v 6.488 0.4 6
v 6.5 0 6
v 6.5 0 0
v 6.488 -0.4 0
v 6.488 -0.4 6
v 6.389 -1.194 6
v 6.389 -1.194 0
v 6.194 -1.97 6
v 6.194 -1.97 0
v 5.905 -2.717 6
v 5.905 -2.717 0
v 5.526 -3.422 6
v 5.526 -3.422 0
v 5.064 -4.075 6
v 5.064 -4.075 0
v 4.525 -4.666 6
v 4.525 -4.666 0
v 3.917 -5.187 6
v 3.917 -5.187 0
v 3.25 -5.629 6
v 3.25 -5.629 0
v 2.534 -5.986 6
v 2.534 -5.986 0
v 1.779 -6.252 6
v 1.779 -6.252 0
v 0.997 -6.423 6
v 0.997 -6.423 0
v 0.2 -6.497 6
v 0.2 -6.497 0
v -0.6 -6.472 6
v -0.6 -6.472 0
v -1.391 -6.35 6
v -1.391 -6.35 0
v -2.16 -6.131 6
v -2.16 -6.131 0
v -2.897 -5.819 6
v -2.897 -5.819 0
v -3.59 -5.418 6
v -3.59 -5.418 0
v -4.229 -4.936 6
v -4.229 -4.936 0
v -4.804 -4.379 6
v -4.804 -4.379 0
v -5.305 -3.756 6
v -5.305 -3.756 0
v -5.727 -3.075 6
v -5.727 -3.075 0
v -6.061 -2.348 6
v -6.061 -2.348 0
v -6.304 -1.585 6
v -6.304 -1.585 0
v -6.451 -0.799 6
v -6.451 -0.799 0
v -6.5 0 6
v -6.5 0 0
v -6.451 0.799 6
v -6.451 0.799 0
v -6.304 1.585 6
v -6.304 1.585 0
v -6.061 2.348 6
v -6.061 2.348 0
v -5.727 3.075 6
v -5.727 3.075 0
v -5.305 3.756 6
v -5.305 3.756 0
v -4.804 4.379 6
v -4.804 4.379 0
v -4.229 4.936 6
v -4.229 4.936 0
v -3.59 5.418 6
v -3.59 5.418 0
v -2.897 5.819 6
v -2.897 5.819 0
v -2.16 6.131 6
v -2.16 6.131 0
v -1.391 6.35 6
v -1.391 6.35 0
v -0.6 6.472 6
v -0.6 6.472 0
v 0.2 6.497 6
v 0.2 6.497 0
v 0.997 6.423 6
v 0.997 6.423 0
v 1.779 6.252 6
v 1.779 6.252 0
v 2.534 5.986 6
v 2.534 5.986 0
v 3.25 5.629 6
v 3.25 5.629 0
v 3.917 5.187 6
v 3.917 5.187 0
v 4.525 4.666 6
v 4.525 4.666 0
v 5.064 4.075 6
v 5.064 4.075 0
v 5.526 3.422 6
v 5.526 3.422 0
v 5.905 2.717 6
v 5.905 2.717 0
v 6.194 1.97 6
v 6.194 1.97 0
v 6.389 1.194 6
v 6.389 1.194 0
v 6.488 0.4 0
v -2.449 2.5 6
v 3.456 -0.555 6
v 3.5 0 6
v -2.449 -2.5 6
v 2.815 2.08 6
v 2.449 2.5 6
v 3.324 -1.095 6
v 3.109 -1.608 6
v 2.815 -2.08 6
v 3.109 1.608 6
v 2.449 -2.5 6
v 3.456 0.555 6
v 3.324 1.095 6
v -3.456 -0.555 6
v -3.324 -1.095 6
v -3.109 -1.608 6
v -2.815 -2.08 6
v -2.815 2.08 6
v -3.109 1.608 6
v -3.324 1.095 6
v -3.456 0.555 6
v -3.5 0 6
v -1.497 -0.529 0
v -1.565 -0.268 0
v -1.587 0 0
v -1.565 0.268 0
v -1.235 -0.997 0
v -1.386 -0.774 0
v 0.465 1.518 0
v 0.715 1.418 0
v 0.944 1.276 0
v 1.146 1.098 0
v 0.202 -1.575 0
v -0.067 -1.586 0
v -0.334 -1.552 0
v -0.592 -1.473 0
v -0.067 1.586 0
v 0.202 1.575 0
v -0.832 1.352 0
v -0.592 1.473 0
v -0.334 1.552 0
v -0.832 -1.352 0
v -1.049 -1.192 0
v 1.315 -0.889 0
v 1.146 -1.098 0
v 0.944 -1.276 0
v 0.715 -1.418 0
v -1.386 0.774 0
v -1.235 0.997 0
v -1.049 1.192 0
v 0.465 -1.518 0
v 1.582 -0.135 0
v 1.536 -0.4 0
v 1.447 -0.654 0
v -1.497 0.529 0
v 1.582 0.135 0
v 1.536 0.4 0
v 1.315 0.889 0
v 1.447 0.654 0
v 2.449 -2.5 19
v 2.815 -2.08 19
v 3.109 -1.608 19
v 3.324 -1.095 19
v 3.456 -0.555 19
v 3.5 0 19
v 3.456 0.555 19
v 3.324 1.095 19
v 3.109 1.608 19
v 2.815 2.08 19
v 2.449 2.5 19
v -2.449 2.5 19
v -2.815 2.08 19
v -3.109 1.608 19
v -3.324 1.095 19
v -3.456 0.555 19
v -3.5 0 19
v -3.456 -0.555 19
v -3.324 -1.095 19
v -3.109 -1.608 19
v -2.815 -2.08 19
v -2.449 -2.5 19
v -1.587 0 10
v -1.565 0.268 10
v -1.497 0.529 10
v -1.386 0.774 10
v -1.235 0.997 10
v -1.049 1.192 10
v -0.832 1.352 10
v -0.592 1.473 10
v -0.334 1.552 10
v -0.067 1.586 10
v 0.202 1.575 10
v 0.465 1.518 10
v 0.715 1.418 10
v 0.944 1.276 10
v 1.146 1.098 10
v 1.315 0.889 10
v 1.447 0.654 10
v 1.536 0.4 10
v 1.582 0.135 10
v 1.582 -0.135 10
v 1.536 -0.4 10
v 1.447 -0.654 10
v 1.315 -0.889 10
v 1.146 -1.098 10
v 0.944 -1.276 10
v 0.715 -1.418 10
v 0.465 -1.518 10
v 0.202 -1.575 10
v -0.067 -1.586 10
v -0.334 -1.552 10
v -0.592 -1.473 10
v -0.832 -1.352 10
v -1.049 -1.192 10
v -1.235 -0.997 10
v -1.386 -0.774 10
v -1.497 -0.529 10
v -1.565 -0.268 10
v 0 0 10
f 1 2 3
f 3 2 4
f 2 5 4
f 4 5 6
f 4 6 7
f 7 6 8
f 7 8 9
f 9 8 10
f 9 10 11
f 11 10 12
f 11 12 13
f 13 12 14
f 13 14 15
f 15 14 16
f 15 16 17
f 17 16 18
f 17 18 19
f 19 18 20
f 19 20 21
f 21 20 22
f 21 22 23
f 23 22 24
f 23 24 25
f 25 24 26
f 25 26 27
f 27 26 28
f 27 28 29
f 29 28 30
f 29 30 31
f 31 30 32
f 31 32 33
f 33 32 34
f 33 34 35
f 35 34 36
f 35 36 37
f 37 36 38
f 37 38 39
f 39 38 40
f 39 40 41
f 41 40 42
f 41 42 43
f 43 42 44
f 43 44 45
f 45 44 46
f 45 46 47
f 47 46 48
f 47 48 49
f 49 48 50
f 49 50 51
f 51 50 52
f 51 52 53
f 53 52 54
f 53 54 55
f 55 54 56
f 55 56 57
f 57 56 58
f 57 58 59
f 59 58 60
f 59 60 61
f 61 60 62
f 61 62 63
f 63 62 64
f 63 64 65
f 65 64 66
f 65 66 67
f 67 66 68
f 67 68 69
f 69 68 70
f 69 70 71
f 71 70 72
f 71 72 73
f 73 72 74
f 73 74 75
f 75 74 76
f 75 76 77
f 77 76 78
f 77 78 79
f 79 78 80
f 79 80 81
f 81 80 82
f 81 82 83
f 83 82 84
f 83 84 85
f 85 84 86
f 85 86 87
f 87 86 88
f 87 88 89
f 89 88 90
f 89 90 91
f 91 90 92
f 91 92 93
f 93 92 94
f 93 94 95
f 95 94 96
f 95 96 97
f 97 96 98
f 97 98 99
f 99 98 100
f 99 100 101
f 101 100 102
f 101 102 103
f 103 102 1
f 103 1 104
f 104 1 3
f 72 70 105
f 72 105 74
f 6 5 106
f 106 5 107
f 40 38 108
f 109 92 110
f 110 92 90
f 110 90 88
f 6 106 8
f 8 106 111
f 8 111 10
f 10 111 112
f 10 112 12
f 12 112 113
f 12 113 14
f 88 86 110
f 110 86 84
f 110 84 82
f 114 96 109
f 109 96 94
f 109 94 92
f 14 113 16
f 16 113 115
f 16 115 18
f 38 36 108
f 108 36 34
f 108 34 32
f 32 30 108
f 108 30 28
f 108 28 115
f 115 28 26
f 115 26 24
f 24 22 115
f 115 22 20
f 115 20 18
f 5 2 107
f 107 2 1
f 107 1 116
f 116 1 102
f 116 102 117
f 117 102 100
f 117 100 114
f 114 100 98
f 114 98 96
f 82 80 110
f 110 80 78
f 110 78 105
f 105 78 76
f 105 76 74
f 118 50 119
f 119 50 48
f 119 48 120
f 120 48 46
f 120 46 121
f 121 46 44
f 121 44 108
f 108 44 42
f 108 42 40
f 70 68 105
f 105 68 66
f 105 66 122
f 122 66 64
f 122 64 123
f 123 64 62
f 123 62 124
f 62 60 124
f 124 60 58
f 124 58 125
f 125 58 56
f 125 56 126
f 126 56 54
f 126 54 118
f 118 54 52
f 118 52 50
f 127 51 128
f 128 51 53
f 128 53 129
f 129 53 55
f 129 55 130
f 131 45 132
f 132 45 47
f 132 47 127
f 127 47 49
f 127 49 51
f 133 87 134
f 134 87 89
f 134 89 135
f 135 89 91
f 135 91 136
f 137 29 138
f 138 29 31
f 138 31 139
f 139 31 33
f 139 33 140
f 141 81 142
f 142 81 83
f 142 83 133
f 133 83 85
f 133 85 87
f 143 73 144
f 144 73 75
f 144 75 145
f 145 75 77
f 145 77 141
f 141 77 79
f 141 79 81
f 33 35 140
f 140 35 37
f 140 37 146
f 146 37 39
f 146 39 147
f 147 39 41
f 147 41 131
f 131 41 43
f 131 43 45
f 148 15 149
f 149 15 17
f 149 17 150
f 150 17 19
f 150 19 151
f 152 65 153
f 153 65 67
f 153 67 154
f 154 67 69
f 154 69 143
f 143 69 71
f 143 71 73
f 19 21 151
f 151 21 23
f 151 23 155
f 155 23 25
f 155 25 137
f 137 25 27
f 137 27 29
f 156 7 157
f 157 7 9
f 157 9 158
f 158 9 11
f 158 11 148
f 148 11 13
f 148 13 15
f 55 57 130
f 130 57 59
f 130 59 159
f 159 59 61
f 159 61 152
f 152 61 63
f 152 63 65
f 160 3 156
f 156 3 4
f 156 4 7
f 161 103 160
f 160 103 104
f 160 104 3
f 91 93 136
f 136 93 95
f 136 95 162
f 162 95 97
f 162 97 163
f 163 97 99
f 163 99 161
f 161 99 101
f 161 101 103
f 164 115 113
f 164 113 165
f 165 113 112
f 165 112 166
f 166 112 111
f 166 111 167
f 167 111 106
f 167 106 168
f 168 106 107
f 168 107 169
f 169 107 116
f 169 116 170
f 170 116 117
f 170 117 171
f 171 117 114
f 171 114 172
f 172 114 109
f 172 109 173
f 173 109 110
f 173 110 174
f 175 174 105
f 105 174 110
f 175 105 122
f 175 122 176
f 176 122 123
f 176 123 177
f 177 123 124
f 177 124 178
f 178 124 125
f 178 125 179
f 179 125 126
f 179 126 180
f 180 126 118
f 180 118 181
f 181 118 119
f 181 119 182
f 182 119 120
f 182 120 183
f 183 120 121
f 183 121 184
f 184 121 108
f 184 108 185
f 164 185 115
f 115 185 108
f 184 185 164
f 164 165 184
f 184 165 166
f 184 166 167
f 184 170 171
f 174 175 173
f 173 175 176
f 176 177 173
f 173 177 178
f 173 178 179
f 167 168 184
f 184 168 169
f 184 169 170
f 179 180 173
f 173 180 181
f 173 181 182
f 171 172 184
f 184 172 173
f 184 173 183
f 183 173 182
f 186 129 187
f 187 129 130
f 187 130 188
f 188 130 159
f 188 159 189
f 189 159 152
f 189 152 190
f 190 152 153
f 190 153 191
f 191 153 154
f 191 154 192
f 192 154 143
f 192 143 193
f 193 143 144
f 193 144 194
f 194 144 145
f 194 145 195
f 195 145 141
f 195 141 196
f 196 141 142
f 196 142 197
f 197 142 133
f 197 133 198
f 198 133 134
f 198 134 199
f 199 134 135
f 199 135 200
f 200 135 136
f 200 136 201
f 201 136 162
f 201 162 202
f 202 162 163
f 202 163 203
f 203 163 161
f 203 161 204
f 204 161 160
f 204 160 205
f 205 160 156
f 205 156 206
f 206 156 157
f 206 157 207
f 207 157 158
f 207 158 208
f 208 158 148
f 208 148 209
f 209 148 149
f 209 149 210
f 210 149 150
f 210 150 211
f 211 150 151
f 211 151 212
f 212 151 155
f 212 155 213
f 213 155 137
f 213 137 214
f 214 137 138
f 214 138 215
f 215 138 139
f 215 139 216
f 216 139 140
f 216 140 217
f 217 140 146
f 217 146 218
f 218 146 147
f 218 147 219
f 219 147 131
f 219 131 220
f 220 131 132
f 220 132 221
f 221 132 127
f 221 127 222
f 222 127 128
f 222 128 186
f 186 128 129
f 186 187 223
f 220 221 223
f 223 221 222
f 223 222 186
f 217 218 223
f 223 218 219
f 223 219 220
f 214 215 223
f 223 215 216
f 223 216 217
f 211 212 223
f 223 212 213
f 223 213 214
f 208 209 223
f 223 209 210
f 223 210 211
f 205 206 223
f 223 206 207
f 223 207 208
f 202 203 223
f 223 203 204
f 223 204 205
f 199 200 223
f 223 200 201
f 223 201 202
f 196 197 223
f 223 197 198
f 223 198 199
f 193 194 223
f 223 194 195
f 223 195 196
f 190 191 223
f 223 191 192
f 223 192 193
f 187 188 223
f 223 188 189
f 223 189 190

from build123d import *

# Parameters (mm, degrees)
SKETCH1_R           = 6.5
BOSS_EXTRUDE1_DEPTH = 6
BOSS_EXTRUDE2_DEPTH = 13
SKETCH3_R           = 1.5875
CUT_EXTRUDE1_DEPTH  = 10


with BuildPart() as part:
    # Sketch1 → Boss-Extrude1 (new body)
    with BuildSketch(Plane.XY):
        Circle(SKETCH1_R)
    extrude(amount=BOSS_EXTRUDE1_DEPTH)

    # Sketch2 → Boss-Extrude2 (add)
    with BuildSketch(Plane.XY.offset(6)):
        with BuildLine():
            Line((-2.449489743, 2.5), (2.449489743, 2.5))
            ThreePointArc((2.449489743, 2.5), (3.5, 0), (2.449489743, -2.5))
            Line((2.449489743, -2.5), (-2.449489743, -2.5))
            ThreePointArc((-2.449489743, -2.5), (-3.5, 0), (-2.449489743, 2.5))
        make_face()
    extrude(amount=BOSS_EXTRUDE2_DEPTH)

    # Sketch3 → Cut-Extrude1 (cut)
    with BuildSketch(Plane(origin=(0, 0, 0), x_dir=(-1, 0, 0), z_dir=(0, 0, -1))):
        Circle(SKETCH3_R)
    extrude(amount=-CUT_EXTRUDE1_DEPTH, mode=Mode.SUBTRACT)


solid = part.part
